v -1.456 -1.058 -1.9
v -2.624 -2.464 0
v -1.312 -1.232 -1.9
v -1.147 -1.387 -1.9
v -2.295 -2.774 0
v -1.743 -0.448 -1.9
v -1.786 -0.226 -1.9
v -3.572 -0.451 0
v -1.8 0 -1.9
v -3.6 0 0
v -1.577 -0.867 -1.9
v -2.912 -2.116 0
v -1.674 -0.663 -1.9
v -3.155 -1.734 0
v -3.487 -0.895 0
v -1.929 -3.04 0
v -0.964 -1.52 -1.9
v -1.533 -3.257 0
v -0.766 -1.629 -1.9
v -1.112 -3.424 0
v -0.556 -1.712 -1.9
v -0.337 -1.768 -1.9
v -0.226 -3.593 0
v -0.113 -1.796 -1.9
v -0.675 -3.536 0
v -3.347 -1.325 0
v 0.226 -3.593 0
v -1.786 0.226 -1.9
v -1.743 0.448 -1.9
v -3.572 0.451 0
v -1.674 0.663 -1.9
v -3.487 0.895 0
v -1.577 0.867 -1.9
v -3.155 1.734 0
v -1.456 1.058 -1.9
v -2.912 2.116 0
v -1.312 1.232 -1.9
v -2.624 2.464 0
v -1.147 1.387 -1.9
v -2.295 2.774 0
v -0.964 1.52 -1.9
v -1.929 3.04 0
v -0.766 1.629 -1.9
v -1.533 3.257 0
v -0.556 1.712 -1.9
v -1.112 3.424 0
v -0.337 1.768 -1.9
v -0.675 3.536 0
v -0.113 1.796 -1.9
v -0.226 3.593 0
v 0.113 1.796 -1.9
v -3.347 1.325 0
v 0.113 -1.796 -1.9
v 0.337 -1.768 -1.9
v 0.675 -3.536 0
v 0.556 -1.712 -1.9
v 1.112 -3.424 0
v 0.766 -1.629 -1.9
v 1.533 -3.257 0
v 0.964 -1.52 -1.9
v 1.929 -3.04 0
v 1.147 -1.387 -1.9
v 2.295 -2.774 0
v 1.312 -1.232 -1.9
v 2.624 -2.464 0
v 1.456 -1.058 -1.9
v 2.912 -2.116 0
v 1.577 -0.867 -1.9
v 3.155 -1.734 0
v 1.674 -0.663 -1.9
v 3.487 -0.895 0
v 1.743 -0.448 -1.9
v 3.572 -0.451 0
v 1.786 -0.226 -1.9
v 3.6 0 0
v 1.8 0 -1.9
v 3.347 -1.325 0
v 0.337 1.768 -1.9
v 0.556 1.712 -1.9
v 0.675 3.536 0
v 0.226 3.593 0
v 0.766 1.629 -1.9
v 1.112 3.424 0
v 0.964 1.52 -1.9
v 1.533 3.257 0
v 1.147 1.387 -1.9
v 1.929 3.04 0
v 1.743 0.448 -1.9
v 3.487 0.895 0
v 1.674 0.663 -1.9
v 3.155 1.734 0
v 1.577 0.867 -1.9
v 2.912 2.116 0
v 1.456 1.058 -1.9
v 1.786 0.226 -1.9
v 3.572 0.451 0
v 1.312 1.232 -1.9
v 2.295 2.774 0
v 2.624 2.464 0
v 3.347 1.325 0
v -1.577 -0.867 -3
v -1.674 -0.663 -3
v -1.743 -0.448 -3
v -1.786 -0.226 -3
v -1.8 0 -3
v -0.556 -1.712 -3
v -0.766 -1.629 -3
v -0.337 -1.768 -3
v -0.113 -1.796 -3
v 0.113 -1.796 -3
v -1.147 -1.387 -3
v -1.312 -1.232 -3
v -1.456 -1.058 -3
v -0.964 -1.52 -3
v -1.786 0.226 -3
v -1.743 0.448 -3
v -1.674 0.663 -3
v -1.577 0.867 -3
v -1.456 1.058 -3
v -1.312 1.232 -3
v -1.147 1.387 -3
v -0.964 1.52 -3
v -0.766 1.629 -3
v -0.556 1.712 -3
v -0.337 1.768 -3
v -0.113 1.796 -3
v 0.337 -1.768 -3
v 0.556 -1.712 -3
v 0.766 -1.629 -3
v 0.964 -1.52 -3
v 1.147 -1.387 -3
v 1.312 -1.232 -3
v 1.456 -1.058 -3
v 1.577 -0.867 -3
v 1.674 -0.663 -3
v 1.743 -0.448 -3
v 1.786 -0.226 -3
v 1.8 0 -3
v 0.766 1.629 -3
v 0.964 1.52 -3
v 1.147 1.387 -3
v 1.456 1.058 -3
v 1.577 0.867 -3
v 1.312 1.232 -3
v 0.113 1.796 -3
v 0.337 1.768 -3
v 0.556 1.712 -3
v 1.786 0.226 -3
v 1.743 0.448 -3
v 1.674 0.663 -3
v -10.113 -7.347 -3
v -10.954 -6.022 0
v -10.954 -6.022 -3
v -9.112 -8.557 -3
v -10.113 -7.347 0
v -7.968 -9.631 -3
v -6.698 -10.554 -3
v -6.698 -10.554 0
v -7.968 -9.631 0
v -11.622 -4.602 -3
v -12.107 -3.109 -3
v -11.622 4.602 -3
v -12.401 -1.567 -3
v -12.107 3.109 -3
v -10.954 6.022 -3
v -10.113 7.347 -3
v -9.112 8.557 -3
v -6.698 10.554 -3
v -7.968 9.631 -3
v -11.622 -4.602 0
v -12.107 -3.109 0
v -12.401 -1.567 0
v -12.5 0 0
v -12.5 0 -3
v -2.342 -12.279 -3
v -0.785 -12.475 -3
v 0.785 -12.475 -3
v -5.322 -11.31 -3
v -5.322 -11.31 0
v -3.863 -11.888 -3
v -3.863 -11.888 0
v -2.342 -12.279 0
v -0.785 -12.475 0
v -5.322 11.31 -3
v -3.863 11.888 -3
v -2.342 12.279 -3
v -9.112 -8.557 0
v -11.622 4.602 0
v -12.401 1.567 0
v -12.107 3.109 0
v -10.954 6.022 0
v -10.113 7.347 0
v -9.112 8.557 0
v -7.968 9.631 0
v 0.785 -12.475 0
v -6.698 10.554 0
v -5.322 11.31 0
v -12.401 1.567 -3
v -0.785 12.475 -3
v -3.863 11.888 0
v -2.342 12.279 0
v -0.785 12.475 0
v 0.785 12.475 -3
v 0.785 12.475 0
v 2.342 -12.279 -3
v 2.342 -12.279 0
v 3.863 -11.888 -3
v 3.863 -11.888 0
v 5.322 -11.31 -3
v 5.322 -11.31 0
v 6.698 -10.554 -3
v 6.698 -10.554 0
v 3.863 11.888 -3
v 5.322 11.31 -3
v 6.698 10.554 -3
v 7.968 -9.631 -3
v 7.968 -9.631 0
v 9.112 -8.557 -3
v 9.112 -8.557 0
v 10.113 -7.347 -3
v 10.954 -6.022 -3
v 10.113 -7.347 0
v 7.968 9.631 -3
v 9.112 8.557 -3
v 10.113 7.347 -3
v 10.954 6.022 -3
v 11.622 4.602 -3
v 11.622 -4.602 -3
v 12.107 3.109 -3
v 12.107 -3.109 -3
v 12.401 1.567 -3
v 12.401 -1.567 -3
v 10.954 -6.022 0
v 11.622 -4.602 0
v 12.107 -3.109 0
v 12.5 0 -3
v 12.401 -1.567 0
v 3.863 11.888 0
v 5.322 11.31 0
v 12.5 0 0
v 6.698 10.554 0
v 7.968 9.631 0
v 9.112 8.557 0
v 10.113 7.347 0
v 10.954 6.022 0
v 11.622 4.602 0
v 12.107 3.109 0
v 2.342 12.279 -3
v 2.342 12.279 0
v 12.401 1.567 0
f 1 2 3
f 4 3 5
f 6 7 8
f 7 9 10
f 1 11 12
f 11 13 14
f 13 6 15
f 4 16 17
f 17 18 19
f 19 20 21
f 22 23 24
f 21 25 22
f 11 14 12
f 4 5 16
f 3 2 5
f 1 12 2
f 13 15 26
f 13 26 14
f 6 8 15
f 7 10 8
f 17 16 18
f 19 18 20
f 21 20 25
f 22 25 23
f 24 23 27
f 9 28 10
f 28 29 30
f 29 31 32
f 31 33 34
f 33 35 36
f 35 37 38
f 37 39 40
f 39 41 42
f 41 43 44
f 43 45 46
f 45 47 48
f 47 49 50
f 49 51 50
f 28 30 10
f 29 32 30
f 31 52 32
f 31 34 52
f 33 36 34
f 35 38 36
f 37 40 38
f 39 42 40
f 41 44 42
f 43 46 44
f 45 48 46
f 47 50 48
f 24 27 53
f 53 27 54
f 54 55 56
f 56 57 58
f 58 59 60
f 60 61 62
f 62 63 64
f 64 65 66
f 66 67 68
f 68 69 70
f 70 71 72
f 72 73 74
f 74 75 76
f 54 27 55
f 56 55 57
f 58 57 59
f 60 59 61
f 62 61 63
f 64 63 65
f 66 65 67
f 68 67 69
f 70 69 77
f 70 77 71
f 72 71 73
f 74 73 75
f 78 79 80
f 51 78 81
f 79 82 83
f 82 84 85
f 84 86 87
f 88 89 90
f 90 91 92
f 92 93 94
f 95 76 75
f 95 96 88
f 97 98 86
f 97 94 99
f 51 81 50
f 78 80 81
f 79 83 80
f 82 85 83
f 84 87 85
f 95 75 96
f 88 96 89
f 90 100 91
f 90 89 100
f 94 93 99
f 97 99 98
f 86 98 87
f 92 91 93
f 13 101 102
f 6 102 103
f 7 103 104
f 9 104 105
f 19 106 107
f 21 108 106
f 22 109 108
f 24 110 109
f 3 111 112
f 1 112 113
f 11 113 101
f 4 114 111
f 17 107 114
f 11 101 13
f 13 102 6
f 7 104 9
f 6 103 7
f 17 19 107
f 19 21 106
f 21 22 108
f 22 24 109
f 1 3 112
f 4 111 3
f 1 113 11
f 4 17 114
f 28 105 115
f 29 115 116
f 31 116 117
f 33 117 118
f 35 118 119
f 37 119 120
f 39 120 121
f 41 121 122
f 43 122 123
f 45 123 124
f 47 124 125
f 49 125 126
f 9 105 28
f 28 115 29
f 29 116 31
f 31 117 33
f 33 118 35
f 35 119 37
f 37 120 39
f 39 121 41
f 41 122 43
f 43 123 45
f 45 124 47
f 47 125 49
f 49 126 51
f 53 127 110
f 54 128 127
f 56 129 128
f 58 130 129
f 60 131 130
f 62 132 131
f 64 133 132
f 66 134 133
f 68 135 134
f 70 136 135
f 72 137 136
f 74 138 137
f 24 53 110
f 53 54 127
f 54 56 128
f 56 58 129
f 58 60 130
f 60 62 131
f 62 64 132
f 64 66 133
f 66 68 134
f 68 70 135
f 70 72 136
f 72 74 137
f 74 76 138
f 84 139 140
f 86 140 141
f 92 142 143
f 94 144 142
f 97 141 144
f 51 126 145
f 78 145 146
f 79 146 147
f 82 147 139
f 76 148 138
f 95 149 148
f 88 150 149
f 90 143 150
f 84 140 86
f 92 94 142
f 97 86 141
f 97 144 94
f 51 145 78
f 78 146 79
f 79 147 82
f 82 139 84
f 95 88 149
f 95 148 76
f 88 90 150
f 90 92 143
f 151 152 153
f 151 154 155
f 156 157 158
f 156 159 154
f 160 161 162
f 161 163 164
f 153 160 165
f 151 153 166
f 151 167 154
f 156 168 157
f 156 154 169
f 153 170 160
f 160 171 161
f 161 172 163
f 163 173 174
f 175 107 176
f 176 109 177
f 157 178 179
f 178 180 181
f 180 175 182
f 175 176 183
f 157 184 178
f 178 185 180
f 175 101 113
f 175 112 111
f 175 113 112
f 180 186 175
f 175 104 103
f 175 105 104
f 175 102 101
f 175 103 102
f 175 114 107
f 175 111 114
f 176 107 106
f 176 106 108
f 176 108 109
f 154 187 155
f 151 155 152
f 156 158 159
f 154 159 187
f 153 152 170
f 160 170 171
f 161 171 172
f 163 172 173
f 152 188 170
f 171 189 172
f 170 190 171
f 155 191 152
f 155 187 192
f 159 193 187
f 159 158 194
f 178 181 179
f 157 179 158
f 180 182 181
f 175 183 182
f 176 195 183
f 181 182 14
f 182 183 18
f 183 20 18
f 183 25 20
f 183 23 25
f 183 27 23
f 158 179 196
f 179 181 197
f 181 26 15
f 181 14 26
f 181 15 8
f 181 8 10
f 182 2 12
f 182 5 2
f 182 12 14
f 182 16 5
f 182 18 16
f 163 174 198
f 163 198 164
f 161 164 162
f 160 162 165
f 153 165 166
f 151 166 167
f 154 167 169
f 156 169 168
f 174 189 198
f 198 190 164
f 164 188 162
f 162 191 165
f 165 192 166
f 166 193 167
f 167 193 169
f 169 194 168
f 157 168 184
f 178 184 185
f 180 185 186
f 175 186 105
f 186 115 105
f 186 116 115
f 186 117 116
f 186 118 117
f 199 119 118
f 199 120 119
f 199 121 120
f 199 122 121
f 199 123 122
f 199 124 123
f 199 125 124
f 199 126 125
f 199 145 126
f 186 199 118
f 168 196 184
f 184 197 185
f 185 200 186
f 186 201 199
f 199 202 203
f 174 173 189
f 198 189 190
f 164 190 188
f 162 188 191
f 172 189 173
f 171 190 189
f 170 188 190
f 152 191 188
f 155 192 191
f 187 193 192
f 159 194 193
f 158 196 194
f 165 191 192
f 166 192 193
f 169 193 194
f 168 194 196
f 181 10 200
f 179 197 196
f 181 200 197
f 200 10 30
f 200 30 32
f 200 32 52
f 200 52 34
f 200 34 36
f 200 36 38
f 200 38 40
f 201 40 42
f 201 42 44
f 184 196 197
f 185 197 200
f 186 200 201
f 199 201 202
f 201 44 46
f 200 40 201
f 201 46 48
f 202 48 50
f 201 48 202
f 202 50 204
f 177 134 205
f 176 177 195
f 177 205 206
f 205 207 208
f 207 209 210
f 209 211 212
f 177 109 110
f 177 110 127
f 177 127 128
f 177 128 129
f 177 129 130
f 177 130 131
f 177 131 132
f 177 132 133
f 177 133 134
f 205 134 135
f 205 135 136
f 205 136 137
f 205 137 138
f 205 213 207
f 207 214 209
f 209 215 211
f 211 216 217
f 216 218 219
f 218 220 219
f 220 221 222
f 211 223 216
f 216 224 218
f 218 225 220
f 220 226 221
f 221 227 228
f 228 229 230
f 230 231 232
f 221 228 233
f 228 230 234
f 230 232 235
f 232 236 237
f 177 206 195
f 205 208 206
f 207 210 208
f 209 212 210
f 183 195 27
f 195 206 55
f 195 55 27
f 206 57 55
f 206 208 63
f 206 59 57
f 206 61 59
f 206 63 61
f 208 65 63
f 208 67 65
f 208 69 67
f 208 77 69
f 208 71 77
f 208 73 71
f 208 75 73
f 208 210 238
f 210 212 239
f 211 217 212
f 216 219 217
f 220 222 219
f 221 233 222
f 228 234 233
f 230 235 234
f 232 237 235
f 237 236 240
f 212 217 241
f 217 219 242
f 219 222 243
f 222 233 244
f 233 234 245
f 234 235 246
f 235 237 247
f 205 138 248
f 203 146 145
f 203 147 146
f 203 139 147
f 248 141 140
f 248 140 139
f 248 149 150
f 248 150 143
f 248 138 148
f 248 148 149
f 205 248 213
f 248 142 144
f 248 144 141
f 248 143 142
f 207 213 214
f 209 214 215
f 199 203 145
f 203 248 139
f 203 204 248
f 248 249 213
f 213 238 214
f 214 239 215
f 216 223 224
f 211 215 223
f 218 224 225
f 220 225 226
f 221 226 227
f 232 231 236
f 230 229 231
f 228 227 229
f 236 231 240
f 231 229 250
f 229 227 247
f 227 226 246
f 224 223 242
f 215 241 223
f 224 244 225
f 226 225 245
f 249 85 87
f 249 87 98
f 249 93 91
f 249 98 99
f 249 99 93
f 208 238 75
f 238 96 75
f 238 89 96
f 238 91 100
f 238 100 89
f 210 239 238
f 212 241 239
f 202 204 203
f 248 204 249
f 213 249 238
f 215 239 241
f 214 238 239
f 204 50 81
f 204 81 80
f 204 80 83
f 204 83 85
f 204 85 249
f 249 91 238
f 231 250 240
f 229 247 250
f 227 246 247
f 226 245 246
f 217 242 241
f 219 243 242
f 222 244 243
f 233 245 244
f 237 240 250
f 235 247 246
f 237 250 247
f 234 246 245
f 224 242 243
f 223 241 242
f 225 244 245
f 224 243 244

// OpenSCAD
$fn = 50;


difference() {
	union() {
		translate(v = [0, 0, -3.0000000000]) {
			cylinder(h = 3, r = 12.5000000000);
		}
	}
	union() {
		translate(v = [0, 0, 0]) {
			rotate(a = [0, 0, 0]) {
				difference() {
					union() {
						translate(v = [0, 0, -6.0000000000]) {
							cylinder(h = 6, r = 1.5000000000);
						}
						translate(v = [0, 0, -1.9000000000]) {
							cylinder(h = 1.9000000000, r1 = 1.8000000000, r2 = 3.6000000000);
						}
						translate(v = [0, 0, -6.0000000000]) {
							cylinder(h = 6, r = 1.8000000000);
						}
						translate(v = [0, 0, -6.0000000000]) {
							cylinder(h = 6, r = 1.5000000000);
						}
					}
					union();
				}
			}
		}
	}
}
